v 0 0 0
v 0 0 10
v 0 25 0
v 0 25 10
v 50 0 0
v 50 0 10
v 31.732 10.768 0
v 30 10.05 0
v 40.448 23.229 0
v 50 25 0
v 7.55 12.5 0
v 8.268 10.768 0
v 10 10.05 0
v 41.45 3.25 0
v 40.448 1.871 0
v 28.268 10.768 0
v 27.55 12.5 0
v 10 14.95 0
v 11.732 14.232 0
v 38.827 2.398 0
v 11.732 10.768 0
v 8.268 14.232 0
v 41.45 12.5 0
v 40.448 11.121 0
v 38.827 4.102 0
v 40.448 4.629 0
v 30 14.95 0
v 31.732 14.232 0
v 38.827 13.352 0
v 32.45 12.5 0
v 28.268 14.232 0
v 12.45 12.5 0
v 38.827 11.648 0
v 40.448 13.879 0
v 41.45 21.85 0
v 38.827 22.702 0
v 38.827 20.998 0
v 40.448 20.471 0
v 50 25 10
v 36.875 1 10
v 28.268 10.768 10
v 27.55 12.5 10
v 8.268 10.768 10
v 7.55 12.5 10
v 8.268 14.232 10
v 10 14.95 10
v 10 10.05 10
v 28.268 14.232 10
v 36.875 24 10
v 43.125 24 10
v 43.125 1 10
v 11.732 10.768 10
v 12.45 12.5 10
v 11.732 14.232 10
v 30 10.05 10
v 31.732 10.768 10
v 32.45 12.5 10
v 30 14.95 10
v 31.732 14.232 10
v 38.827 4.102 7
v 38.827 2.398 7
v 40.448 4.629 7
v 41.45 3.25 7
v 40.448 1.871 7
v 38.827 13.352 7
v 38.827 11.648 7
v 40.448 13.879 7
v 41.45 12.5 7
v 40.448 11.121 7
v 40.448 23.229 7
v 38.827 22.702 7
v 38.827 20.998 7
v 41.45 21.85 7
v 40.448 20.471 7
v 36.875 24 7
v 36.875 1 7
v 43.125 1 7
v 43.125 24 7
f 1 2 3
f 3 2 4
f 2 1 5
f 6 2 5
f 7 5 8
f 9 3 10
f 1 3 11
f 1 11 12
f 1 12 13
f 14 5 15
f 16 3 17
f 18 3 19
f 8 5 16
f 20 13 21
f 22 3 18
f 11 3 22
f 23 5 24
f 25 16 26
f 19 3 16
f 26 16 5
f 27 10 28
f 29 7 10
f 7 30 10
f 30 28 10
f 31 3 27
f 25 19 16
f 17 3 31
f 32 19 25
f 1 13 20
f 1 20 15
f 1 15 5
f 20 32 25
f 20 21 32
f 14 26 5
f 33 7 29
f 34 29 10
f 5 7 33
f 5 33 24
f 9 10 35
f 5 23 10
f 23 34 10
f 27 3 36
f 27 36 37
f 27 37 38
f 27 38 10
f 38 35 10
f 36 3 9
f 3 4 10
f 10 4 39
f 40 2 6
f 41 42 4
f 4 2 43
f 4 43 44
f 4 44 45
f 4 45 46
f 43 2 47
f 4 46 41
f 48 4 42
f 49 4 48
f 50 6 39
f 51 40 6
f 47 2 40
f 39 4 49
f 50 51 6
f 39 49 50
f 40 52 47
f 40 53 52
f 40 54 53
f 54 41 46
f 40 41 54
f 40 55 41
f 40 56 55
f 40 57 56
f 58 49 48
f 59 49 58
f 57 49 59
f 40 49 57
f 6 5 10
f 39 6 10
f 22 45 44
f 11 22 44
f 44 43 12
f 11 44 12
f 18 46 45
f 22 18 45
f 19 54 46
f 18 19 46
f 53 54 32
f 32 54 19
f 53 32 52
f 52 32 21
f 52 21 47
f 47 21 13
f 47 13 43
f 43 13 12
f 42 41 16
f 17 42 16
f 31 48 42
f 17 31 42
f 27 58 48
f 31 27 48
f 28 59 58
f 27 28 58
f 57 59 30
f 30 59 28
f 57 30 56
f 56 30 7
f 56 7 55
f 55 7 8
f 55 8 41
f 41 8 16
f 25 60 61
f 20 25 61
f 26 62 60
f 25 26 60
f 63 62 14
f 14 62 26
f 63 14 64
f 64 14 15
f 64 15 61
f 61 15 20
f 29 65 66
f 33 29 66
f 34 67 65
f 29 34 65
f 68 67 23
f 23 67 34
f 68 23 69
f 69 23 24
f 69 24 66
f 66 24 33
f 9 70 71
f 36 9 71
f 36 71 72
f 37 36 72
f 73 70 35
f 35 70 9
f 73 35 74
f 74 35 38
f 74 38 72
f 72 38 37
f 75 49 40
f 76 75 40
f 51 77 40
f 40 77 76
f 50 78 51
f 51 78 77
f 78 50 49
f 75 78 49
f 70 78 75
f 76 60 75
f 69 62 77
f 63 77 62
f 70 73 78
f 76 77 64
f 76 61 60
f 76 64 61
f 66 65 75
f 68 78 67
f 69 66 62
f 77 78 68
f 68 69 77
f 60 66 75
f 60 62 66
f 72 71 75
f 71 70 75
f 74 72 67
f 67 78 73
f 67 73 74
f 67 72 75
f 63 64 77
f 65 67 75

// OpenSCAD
difference()
{

cube([50,25,10]);

translate(v=[10,12.5,-0.5])
cylinder(h=15,r=2.45, center=false);

translate(v=[30,12.5,-0.5])
cylinder(h=15,r=2.45, center=false);

translate(v=[40,12.5,-0.5])
cylinder(h=15,r=1.45, center=false);

translate(v=[40,3.25,-0.5])
cylinder(h=15,r=1.45, center=false);

translate(v=[40,21.85,-0.5])
cylinder(h=15,r=1.45, center=false);


translate(v=[36.875,1,7])
cube([6.25,23,4]);

}
